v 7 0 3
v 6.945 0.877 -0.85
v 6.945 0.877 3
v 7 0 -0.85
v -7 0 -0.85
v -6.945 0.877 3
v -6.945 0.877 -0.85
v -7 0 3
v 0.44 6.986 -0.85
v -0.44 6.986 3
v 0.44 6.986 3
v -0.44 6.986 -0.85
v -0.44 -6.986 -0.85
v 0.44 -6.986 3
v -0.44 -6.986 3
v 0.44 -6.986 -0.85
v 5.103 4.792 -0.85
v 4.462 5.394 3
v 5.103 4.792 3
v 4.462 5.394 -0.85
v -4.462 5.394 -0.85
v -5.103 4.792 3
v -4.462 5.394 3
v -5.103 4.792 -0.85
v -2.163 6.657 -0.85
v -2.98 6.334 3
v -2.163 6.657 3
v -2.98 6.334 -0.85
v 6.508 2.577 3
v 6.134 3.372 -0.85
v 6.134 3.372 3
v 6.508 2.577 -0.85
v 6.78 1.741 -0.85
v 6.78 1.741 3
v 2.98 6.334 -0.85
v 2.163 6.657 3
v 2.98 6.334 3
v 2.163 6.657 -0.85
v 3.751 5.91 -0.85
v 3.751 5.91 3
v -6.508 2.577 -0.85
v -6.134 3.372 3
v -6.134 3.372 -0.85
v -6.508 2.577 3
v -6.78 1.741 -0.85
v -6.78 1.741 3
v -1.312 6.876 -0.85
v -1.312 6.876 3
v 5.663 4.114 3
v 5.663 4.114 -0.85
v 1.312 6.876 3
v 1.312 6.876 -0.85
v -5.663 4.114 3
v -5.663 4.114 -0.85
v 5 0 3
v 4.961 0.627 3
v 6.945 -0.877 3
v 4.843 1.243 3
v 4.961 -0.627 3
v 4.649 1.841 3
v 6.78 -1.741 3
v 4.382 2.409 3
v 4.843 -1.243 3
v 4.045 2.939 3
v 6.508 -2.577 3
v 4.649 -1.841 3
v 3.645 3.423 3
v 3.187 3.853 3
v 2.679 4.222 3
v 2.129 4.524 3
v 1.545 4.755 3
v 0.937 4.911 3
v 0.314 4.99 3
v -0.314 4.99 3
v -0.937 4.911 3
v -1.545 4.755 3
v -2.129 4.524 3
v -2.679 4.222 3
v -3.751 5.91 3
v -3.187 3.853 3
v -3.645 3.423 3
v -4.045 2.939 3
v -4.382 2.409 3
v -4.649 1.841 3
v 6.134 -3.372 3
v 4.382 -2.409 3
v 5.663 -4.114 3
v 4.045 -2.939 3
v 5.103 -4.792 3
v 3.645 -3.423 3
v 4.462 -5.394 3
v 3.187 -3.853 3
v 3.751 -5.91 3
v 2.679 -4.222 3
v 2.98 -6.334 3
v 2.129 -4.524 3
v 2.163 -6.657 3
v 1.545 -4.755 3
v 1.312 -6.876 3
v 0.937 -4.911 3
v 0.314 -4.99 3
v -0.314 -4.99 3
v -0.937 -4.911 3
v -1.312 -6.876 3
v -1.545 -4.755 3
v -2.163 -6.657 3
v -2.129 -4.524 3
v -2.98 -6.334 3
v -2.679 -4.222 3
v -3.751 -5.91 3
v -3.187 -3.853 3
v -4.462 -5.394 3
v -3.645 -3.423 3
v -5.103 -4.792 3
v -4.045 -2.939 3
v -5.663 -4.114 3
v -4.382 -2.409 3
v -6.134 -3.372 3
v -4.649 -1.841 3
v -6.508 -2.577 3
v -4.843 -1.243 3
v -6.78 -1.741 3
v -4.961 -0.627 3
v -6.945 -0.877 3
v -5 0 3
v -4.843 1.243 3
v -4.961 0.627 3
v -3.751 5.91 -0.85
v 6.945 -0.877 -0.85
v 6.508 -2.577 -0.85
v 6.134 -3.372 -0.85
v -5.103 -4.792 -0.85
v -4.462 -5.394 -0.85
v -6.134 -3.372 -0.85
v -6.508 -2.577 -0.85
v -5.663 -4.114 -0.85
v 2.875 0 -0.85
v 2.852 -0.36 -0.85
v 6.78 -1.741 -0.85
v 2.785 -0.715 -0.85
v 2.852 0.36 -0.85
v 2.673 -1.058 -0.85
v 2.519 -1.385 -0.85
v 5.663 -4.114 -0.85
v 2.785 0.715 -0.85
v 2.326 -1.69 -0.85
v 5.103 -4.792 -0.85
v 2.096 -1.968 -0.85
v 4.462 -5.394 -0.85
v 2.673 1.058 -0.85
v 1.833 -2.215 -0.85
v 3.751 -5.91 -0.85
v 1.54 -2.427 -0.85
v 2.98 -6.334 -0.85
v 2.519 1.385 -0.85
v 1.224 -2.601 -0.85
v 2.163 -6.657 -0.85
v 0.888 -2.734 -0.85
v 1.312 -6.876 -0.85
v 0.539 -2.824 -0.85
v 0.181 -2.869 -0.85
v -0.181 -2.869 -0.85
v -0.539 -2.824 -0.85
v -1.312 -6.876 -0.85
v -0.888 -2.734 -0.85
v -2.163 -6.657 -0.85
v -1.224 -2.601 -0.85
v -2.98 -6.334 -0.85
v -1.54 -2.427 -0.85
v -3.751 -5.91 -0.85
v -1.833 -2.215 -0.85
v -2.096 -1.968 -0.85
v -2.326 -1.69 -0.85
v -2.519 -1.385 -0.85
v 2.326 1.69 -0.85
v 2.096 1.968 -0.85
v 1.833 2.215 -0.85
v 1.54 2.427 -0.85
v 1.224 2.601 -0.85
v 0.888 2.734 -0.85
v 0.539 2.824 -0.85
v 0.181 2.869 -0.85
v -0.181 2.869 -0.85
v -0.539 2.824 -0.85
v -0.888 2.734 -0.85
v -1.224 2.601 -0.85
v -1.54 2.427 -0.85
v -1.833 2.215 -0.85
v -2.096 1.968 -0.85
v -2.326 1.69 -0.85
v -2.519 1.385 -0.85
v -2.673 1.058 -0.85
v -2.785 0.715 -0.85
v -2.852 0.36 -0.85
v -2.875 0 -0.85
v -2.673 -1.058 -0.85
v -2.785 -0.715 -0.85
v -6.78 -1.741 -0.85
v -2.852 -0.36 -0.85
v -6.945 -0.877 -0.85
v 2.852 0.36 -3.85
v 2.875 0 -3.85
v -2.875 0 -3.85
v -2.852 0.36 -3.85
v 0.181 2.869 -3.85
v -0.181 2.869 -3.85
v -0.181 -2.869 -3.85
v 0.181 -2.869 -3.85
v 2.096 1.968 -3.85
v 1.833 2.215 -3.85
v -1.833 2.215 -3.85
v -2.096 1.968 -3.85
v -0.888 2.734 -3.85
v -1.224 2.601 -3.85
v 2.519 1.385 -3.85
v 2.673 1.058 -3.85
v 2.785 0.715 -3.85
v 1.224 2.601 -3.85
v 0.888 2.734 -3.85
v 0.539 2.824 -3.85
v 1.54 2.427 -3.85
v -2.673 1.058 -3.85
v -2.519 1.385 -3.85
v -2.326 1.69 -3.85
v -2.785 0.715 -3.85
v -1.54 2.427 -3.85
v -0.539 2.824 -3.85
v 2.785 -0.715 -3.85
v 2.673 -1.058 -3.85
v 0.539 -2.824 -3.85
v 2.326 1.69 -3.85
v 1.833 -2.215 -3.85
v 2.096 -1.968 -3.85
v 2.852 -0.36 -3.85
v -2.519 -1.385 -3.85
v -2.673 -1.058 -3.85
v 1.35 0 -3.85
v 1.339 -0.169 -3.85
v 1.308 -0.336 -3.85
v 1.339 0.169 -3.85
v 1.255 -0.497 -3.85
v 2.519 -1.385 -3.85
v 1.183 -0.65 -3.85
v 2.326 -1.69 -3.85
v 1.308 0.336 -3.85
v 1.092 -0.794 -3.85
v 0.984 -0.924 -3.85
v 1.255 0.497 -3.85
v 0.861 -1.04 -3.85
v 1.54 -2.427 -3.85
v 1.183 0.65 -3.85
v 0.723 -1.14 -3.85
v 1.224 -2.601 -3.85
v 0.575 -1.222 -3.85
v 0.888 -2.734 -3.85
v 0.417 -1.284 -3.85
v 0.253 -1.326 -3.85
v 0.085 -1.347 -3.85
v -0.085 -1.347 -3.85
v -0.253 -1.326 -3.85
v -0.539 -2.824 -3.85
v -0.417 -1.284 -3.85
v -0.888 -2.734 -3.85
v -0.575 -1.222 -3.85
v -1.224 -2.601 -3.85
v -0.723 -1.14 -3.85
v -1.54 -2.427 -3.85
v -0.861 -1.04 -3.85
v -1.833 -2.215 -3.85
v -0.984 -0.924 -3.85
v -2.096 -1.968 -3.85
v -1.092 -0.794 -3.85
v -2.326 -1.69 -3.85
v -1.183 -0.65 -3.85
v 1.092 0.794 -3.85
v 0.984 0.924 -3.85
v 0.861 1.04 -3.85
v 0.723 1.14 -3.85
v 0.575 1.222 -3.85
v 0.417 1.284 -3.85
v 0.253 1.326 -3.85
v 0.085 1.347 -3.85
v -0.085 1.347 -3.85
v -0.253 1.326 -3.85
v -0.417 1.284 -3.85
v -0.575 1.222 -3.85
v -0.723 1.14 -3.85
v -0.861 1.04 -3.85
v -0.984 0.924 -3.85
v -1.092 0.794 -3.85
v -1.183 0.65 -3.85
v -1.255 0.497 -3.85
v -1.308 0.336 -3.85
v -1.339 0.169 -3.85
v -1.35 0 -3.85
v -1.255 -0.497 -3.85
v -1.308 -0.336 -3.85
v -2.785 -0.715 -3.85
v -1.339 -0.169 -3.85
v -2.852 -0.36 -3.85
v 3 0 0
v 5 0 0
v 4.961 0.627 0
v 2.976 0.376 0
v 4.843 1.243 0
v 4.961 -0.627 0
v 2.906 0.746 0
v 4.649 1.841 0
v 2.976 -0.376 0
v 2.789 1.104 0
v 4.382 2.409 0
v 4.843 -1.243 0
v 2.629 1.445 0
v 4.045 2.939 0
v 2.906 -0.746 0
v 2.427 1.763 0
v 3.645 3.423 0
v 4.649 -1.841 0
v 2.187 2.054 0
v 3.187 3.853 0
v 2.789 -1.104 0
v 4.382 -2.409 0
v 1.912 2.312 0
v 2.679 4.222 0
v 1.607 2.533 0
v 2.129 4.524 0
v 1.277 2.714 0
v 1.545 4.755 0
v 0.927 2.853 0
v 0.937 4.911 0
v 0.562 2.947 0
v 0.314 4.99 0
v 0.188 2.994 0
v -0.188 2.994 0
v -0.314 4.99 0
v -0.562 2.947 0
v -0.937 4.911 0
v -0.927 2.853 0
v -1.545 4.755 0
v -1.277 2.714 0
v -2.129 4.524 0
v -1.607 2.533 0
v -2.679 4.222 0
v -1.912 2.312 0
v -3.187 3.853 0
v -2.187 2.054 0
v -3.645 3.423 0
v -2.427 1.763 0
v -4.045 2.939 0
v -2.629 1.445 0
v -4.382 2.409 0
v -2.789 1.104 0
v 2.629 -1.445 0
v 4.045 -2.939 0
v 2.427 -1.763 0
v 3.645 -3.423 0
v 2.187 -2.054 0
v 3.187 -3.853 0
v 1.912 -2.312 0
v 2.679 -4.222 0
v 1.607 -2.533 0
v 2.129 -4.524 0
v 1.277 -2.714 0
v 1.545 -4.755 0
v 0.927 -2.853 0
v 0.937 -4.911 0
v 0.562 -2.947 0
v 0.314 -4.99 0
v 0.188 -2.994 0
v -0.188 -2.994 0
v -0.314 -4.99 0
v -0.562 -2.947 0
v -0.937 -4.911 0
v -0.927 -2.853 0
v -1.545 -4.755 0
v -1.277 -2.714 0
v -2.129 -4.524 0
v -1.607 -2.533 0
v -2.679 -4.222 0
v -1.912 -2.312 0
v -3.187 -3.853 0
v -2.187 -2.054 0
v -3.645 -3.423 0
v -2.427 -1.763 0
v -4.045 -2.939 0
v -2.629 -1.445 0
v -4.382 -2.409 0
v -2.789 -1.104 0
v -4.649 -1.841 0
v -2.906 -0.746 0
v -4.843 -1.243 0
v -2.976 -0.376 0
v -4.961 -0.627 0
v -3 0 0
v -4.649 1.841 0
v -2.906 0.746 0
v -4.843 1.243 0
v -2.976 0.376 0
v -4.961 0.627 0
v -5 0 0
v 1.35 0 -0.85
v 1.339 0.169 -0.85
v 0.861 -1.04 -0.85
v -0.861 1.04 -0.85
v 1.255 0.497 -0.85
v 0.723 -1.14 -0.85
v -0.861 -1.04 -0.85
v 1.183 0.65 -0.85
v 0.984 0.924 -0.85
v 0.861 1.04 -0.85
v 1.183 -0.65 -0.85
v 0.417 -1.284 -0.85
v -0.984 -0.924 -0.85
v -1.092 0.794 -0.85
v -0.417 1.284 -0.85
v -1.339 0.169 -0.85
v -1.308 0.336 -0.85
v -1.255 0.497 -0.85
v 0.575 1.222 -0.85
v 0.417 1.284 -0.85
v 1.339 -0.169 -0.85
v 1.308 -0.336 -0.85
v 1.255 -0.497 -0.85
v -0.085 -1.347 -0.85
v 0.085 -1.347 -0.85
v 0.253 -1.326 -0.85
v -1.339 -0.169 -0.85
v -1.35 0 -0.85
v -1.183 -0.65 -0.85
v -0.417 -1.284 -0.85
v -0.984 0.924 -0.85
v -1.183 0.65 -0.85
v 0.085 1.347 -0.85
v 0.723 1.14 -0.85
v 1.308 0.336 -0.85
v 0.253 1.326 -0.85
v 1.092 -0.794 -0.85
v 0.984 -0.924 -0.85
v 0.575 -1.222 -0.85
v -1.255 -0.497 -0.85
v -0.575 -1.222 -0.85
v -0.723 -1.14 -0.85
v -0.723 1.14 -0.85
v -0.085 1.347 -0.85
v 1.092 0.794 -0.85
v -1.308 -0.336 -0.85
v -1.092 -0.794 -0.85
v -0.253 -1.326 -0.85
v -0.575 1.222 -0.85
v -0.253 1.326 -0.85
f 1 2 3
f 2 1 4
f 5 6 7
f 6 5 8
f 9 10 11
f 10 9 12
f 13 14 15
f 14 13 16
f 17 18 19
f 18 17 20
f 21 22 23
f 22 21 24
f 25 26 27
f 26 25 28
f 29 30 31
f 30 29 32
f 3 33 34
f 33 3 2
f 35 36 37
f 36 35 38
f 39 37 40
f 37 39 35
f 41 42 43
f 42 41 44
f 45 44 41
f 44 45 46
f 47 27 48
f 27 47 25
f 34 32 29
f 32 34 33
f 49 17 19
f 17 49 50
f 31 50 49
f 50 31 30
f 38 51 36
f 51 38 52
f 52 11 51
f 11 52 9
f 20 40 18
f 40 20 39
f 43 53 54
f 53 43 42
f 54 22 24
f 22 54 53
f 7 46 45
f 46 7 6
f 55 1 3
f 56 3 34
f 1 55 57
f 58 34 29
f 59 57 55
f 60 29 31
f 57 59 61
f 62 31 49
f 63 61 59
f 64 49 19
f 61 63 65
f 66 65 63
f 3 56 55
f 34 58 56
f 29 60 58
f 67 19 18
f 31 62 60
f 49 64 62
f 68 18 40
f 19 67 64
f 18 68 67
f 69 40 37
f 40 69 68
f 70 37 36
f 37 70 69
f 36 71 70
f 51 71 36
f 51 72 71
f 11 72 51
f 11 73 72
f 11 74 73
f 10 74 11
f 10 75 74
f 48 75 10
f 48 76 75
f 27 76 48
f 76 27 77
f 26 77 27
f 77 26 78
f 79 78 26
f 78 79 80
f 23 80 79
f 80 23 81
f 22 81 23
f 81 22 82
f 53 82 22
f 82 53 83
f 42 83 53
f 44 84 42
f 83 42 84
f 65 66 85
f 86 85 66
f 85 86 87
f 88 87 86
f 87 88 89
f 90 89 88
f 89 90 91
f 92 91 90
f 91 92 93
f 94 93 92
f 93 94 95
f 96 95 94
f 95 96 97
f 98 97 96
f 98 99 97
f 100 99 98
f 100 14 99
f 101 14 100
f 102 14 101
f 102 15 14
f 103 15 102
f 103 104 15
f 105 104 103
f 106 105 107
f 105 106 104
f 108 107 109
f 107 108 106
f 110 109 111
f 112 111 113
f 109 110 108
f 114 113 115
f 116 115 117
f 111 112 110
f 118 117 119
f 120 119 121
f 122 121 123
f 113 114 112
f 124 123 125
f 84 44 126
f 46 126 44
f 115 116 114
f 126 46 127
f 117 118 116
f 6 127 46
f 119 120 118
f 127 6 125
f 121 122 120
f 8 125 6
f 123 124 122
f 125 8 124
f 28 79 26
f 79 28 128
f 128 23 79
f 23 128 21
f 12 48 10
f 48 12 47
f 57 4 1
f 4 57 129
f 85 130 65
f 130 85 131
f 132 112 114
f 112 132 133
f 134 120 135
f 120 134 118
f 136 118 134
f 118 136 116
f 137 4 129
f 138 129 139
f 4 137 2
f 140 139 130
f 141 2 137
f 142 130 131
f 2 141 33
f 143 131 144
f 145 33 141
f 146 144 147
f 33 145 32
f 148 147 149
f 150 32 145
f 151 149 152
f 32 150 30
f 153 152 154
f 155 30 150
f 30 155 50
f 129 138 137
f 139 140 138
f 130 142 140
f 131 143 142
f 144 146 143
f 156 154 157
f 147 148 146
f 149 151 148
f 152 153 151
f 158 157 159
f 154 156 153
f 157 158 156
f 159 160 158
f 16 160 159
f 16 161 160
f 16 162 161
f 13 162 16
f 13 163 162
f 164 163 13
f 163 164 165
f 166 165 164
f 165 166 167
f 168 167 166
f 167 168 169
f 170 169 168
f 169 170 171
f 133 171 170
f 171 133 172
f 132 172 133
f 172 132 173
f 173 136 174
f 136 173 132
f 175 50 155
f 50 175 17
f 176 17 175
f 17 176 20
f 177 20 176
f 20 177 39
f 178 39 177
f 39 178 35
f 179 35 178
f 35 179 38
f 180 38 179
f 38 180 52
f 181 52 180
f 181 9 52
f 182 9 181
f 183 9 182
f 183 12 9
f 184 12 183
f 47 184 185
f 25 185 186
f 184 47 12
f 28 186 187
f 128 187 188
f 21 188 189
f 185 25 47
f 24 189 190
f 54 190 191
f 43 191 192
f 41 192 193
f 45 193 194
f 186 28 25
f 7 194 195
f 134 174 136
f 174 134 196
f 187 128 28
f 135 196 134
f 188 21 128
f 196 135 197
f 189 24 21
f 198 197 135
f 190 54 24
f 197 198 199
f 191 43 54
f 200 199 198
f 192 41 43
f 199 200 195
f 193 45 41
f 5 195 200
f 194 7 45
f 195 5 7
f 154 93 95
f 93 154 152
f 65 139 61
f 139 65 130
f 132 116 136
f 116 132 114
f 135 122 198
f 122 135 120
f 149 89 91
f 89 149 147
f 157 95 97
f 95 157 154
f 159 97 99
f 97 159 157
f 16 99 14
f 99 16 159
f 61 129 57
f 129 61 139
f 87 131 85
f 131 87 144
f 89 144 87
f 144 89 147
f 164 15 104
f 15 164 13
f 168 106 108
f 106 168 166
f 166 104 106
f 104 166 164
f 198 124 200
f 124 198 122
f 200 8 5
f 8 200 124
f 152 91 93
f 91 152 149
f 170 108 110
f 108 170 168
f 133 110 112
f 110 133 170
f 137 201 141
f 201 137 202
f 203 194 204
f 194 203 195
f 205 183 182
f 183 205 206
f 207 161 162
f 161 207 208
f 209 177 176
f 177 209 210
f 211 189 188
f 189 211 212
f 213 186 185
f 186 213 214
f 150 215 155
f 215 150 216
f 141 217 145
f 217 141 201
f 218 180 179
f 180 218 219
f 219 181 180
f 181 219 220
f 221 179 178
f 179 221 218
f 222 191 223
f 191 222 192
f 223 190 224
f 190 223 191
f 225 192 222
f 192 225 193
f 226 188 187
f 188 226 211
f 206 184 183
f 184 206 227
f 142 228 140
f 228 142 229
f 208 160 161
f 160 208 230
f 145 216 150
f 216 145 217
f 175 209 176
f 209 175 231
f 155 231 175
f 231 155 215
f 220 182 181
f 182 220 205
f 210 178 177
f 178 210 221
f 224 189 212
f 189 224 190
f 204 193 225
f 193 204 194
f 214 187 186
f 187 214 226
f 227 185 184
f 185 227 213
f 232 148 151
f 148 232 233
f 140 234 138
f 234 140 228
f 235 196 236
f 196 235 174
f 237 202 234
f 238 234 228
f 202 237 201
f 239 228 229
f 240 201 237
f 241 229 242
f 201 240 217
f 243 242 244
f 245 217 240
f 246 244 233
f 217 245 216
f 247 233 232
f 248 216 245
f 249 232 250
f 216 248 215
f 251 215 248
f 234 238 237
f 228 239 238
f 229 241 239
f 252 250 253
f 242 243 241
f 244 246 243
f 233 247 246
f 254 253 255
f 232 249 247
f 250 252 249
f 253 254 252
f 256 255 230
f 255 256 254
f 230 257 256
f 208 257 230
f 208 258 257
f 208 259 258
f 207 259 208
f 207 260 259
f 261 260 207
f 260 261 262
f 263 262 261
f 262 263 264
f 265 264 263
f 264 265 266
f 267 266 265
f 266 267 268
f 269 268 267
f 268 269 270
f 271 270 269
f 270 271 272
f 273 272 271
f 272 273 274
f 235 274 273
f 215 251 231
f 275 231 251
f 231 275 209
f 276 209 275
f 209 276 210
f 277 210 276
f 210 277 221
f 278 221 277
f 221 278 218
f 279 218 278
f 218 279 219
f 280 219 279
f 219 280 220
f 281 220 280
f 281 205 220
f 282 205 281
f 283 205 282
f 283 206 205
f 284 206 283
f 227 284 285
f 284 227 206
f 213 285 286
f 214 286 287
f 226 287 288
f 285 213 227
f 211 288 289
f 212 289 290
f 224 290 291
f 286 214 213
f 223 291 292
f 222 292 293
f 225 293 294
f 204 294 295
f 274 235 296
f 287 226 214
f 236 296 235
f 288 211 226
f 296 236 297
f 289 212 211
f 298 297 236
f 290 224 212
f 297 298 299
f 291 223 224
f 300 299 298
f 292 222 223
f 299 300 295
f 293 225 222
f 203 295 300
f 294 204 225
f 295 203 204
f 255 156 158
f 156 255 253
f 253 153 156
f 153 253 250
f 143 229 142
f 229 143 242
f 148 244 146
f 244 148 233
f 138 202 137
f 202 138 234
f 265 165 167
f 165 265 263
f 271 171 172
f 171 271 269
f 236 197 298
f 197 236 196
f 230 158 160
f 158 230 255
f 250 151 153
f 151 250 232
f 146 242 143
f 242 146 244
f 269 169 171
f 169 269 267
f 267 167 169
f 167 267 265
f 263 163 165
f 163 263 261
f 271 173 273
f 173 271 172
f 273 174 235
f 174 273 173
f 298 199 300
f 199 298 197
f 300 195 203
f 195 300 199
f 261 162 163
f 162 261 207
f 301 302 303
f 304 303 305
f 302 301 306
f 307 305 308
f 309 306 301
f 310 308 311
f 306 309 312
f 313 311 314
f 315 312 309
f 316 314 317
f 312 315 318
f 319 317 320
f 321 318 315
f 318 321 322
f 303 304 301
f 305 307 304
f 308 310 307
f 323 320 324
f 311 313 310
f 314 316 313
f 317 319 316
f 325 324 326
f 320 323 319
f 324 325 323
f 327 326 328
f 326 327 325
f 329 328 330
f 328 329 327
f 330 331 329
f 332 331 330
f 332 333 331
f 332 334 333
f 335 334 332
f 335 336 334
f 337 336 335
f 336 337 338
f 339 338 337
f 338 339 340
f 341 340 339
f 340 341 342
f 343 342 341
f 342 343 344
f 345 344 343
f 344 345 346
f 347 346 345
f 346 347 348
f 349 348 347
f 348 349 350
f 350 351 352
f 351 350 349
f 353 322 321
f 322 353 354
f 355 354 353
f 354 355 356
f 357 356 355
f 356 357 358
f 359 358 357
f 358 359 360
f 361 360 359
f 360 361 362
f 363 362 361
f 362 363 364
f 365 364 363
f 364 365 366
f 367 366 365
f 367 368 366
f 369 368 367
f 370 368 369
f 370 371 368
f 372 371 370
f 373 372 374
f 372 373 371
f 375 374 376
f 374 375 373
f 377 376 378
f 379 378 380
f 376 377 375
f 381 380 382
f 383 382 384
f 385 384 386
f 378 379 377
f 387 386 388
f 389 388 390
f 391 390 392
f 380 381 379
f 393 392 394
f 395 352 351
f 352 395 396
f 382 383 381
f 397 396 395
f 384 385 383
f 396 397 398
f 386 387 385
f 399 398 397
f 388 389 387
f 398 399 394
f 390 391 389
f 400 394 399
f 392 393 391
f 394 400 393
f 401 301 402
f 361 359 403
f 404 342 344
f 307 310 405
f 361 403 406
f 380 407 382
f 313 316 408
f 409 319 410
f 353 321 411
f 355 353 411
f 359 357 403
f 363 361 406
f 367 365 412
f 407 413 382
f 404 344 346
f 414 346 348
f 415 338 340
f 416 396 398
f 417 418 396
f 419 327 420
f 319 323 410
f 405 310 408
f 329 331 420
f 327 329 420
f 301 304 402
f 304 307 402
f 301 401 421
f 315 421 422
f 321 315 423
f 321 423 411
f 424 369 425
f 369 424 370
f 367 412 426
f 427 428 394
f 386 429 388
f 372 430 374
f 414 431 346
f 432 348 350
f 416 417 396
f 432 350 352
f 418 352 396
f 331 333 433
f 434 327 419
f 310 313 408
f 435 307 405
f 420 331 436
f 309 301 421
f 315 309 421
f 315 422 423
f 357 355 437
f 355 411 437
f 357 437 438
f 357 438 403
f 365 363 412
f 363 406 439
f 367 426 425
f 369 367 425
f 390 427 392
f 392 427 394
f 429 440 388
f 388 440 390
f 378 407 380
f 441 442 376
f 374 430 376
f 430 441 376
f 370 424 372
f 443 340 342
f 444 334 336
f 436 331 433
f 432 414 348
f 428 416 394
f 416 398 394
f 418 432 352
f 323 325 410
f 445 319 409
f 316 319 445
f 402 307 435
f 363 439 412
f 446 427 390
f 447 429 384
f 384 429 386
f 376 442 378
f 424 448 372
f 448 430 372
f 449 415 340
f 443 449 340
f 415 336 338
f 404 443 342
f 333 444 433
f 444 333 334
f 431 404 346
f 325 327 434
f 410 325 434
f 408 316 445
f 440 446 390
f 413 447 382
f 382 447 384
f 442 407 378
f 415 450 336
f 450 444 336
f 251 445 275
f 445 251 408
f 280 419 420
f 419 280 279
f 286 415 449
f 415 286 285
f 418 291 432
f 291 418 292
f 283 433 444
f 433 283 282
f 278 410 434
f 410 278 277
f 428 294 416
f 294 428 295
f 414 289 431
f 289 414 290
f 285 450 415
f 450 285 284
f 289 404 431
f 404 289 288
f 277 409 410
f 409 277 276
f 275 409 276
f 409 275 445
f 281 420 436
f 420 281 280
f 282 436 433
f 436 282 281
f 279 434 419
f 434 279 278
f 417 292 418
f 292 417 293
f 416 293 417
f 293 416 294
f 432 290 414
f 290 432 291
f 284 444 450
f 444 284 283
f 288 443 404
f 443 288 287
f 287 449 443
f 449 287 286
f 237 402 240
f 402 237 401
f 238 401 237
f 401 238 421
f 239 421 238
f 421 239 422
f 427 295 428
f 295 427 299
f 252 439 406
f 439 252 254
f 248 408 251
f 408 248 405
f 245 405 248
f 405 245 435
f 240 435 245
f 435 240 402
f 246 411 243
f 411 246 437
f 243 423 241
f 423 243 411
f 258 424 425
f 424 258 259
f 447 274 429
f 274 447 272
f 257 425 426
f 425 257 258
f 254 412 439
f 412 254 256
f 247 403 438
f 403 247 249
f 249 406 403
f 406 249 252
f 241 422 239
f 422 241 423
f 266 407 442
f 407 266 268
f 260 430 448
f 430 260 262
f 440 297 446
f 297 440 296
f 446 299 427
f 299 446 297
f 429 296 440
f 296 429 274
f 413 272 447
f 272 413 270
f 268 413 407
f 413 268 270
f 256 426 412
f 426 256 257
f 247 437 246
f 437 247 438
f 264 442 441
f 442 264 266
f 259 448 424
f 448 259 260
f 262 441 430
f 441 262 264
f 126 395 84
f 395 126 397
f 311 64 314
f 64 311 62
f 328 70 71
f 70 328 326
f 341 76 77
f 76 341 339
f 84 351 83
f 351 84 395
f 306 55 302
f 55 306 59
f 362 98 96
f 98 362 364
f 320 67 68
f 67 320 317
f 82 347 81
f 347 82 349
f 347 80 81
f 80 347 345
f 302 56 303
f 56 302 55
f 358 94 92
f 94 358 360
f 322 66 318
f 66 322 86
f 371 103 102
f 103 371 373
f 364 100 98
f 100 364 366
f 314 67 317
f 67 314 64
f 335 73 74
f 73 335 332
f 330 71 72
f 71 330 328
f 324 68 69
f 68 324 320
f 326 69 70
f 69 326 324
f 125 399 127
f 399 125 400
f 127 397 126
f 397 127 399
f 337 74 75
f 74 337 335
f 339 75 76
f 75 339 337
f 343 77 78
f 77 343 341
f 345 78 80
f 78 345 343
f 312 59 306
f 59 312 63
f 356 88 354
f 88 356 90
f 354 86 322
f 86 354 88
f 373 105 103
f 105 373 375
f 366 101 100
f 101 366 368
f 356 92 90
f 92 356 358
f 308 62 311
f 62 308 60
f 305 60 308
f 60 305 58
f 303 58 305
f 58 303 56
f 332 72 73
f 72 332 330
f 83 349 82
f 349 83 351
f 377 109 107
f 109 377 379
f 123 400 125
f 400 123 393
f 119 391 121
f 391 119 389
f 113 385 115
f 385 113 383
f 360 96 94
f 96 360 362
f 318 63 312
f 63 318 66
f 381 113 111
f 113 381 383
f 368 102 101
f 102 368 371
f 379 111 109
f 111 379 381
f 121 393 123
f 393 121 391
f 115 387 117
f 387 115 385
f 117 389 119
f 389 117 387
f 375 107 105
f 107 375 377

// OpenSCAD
$fn = 50;

difference() {
	union() {
		translate(v = [0, 0, -0.8500000000000001]) {
			cylinder(h = 3.85, r = 7.0);
		}
		#translate(v = [0, 0, -3.85]) {
			cylinder(h = 3.85, r = 2.875);
		}
	}
	union() {
		translate(v = [0, 0, 0]) {
			rotate(a = [0, 0, 0]) {
				difference() {
					union() {
						translate(v = [0, 0, -3.85]) {
							cylinder(h = 3.85, r = 1.0);
						}
						translate(v = [0, 0, -0.85]) {
							cylinder(h = 0.85, r1 = 1.35, r2 = 3.0);
						}
						translate(v = [0, 0, -3.85]) {
							cylinder(h = 3.85, r = 1.35);
						}
						translate(v = [0, 0, -3.85]) {
							cylinder(h = 3.85, r = 1.0);
						}
					}
					union();
				}
			}
		}
		#cylinder(h = 3, r = 5.0);
	}
}
